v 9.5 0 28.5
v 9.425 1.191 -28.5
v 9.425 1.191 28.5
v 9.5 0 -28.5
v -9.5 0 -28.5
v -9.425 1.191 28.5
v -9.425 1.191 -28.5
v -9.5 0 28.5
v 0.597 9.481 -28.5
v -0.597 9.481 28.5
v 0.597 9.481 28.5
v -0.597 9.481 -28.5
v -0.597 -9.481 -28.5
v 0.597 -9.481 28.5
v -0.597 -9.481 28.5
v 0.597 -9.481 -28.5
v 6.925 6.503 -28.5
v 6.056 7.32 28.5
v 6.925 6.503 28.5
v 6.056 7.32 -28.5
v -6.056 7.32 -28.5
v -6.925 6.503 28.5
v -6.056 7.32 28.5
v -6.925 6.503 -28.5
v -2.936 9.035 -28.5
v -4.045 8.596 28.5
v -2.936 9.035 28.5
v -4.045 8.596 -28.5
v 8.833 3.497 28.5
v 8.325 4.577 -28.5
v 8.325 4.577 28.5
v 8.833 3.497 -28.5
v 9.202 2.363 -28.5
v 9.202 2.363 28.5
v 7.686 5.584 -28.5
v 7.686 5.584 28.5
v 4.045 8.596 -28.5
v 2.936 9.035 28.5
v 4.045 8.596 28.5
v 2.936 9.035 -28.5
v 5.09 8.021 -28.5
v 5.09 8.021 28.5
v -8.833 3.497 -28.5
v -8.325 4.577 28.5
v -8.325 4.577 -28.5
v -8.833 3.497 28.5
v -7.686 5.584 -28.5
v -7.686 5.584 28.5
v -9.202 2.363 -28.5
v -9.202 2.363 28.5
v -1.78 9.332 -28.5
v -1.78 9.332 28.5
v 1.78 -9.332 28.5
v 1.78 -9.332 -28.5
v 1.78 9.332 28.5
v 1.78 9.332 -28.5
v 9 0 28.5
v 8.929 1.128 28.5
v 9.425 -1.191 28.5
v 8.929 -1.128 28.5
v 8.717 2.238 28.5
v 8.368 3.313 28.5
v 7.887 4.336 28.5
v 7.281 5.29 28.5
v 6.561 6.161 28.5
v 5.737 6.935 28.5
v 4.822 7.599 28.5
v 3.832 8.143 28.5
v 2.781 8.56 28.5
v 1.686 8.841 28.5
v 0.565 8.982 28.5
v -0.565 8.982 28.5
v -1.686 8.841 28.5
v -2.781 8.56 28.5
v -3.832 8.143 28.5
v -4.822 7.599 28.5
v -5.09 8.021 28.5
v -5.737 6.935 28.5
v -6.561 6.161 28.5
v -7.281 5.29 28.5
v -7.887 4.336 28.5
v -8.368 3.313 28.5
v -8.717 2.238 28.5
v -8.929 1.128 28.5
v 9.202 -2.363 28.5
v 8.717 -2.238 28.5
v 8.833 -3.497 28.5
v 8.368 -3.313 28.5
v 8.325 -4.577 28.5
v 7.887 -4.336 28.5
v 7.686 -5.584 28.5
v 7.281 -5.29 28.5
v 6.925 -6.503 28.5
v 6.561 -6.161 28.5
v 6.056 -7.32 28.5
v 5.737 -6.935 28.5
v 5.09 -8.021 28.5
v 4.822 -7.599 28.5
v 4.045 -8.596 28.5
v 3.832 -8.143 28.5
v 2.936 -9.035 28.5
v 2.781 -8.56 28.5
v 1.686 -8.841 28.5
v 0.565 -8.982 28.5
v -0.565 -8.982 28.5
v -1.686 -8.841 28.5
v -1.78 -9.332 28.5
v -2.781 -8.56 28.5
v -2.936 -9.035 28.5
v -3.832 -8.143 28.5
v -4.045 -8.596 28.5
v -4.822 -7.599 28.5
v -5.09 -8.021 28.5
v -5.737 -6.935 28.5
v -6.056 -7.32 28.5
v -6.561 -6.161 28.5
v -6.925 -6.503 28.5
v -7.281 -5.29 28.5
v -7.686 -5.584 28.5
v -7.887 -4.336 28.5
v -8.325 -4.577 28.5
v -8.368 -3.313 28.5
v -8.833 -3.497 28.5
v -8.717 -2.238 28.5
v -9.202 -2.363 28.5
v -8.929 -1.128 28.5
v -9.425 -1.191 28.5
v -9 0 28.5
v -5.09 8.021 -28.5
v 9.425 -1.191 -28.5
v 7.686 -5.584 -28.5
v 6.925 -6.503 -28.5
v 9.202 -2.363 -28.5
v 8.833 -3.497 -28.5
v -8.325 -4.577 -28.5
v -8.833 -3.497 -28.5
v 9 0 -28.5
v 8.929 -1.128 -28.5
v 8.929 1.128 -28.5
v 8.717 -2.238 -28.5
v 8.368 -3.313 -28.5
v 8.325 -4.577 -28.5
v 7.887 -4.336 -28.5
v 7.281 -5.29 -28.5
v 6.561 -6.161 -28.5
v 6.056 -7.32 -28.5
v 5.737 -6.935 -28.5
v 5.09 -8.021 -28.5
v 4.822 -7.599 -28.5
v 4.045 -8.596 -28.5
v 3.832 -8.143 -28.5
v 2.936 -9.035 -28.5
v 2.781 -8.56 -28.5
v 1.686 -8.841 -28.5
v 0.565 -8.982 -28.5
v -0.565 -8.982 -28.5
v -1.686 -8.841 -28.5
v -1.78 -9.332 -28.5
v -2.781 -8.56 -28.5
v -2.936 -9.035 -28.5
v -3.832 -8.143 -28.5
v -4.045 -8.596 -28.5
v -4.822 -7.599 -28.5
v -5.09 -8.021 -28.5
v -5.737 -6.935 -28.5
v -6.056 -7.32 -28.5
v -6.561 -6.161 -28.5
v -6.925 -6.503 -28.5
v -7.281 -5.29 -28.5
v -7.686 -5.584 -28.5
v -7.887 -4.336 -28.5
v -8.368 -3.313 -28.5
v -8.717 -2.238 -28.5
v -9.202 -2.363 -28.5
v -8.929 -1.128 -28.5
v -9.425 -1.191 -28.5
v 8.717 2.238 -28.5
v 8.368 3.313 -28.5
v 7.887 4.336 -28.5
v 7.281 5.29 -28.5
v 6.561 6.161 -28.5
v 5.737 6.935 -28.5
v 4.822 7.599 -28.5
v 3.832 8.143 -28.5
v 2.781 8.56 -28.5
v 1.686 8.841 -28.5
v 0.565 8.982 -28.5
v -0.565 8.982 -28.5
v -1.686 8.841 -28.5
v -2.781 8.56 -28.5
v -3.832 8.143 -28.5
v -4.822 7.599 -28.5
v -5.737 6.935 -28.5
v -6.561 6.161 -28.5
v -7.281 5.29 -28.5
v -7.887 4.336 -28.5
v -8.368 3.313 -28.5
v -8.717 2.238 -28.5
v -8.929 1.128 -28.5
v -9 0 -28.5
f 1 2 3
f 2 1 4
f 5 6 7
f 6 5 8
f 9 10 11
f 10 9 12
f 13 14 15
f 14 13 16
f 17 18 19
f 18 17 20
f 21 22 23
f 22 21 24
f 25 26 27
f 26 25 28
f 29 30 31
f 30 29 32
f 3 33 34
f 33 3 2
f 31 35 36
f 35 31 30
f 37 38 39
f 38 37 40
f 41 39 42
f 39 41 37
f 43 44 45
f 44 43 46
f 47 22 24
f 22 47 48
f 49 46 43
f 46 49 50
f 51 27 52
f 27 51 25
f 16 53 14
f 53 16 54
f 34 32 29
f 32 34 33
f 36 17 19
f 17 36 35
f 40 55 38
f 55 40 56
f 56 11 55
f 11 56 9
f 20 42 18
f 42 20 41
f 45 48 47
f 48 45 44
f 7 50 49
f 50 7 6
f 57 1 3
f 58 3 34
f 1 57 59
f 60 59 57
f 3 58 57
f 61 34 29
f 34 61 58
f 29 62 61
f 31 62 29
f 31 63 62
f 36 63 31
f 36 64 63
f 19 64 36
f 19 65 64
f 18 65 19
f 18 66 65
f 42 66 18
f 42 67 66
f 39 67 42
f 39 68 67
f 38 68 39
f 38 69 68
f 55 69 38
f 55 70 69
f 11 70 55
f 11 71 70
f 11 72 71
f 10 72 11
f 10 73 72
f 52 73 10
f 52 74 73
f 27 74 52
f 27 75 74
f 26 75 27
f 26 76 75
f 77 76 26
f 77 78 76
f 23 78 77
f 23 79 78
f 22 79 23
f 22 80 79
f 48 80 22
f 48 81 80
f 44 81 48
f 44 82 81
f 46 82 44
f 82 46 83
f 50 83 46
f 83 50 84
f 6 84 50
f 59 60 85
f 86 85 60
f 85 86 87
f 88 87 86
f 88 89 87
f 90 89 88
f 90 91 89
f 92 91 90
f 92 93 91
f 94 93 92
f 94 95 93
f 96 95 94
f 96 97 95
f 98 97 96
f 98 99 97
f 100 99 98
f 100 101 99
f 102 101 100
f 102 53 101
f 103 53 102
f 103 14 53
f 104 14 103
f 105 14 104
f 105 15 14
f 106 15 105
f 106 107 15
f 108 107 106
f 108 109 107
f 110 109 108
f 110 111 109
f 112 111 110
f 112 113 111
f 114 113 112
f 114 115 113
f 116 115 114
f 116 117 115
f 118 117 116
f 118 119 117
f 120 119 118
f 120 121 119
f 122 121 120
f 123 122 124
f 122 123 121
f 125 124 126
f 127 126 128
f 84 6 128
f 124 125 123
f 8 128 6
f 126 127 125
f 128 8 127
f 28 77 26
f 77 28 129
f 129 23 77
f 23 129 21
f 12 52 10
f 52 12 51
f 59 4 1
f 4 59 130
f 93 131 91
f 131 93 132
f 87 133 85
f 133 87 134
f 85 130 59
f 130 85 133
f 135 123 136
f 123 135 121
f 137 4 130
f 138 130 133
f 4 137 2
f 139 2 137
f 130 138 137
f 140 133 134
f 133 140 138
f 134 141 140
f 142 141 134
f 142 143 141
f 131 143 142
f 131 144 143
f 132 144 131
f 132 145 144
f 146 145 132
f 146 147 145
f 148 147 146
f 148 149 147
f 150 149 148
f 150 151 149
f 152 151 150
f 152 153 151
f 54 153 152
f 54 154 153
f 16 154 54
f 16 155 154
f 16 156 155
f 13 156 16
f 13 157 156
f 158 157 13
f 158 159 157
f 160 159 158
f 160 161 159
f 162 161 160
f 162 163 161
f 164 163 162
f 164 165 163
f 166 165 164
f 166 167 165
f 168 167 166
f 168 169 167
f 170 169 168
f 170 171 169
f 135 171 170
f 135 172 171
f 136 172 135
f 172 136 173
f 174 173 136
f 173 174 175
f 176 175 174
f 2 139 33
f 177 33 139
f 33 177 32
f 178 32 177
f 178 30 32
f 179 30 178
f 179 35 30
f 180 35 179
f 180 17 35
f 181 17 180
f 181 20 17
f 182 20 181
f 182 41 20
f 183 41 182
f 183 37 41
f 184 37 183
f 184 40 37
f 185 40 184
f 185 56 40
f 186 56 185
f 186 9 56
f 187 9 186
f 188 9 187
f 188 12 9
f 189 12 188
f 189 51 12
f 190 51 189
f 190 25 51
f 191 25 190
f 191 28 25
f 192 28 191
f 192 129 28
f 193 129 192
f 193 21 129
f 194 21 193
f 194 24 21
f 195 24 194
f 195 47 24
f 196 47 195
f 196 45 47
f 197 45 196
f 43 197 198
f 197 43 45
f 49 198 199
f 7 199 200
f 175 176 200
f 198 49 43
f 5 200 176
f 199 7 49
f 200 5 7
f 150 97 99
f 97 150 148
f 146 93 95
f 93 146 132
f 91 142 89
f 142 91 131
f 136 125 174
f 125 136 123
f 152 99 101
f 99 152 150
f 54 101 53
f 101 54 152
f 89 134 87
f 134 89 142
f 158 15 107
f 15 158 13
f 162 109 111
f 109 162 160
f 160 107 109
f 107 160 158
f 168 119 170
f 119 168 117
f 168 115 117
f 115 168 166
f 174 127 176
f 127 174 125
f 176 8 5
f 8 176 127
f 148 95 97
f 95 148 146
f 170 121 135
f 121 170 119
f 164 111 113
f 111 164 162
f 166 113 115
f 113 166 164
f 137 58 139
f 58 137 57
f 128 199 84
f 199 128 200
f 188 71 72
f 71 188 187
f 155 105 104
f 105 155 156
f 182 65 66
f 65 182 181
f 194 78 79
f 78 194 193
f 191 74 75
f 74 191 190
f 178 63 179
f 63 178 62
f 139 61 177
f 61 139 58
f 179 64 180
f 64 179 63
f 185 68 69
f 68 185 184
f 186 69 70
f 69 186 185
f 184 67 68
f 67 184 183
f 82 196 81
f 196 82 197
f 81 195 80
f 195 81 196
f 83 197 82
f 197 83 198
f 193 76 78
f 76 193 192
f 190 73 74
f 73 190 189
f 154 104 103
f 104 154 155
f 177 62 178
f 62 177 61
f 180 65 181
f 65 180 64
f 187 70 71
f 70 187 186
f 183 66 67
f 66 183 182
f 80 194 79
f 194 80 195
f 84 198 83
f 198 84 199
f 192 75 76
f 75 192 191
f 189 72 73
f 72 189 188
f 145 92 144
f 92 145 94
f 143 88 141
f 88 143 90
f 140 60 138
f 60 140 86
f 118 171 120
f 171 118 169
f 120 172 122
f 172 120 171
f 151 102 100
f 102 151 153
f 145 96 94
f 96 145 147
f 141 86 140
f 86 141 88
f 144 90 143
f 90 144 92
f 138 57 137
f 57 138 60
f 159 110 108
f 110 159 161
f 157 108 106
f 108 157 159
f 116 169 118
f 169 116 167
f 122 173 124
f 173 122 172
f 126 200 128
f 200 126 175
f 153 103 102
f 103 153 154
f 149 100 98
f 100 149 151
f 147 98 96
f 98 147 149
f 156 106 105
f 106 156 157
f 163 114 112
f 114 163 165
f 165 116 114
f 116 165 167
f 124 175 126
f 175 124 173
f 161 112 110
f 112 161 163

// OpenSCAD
$fn = 50;


difference() {
	union() {
		translate(v = [0, 0, -28.5000000000]) {
			cylinder(h = 57, r = 9.5000000000);
		}
	}
	union() {
		translate(v = [0, 0, -100.0000000000]) {
			cylinder(h = 200, r = 9);
		}
	}
}
